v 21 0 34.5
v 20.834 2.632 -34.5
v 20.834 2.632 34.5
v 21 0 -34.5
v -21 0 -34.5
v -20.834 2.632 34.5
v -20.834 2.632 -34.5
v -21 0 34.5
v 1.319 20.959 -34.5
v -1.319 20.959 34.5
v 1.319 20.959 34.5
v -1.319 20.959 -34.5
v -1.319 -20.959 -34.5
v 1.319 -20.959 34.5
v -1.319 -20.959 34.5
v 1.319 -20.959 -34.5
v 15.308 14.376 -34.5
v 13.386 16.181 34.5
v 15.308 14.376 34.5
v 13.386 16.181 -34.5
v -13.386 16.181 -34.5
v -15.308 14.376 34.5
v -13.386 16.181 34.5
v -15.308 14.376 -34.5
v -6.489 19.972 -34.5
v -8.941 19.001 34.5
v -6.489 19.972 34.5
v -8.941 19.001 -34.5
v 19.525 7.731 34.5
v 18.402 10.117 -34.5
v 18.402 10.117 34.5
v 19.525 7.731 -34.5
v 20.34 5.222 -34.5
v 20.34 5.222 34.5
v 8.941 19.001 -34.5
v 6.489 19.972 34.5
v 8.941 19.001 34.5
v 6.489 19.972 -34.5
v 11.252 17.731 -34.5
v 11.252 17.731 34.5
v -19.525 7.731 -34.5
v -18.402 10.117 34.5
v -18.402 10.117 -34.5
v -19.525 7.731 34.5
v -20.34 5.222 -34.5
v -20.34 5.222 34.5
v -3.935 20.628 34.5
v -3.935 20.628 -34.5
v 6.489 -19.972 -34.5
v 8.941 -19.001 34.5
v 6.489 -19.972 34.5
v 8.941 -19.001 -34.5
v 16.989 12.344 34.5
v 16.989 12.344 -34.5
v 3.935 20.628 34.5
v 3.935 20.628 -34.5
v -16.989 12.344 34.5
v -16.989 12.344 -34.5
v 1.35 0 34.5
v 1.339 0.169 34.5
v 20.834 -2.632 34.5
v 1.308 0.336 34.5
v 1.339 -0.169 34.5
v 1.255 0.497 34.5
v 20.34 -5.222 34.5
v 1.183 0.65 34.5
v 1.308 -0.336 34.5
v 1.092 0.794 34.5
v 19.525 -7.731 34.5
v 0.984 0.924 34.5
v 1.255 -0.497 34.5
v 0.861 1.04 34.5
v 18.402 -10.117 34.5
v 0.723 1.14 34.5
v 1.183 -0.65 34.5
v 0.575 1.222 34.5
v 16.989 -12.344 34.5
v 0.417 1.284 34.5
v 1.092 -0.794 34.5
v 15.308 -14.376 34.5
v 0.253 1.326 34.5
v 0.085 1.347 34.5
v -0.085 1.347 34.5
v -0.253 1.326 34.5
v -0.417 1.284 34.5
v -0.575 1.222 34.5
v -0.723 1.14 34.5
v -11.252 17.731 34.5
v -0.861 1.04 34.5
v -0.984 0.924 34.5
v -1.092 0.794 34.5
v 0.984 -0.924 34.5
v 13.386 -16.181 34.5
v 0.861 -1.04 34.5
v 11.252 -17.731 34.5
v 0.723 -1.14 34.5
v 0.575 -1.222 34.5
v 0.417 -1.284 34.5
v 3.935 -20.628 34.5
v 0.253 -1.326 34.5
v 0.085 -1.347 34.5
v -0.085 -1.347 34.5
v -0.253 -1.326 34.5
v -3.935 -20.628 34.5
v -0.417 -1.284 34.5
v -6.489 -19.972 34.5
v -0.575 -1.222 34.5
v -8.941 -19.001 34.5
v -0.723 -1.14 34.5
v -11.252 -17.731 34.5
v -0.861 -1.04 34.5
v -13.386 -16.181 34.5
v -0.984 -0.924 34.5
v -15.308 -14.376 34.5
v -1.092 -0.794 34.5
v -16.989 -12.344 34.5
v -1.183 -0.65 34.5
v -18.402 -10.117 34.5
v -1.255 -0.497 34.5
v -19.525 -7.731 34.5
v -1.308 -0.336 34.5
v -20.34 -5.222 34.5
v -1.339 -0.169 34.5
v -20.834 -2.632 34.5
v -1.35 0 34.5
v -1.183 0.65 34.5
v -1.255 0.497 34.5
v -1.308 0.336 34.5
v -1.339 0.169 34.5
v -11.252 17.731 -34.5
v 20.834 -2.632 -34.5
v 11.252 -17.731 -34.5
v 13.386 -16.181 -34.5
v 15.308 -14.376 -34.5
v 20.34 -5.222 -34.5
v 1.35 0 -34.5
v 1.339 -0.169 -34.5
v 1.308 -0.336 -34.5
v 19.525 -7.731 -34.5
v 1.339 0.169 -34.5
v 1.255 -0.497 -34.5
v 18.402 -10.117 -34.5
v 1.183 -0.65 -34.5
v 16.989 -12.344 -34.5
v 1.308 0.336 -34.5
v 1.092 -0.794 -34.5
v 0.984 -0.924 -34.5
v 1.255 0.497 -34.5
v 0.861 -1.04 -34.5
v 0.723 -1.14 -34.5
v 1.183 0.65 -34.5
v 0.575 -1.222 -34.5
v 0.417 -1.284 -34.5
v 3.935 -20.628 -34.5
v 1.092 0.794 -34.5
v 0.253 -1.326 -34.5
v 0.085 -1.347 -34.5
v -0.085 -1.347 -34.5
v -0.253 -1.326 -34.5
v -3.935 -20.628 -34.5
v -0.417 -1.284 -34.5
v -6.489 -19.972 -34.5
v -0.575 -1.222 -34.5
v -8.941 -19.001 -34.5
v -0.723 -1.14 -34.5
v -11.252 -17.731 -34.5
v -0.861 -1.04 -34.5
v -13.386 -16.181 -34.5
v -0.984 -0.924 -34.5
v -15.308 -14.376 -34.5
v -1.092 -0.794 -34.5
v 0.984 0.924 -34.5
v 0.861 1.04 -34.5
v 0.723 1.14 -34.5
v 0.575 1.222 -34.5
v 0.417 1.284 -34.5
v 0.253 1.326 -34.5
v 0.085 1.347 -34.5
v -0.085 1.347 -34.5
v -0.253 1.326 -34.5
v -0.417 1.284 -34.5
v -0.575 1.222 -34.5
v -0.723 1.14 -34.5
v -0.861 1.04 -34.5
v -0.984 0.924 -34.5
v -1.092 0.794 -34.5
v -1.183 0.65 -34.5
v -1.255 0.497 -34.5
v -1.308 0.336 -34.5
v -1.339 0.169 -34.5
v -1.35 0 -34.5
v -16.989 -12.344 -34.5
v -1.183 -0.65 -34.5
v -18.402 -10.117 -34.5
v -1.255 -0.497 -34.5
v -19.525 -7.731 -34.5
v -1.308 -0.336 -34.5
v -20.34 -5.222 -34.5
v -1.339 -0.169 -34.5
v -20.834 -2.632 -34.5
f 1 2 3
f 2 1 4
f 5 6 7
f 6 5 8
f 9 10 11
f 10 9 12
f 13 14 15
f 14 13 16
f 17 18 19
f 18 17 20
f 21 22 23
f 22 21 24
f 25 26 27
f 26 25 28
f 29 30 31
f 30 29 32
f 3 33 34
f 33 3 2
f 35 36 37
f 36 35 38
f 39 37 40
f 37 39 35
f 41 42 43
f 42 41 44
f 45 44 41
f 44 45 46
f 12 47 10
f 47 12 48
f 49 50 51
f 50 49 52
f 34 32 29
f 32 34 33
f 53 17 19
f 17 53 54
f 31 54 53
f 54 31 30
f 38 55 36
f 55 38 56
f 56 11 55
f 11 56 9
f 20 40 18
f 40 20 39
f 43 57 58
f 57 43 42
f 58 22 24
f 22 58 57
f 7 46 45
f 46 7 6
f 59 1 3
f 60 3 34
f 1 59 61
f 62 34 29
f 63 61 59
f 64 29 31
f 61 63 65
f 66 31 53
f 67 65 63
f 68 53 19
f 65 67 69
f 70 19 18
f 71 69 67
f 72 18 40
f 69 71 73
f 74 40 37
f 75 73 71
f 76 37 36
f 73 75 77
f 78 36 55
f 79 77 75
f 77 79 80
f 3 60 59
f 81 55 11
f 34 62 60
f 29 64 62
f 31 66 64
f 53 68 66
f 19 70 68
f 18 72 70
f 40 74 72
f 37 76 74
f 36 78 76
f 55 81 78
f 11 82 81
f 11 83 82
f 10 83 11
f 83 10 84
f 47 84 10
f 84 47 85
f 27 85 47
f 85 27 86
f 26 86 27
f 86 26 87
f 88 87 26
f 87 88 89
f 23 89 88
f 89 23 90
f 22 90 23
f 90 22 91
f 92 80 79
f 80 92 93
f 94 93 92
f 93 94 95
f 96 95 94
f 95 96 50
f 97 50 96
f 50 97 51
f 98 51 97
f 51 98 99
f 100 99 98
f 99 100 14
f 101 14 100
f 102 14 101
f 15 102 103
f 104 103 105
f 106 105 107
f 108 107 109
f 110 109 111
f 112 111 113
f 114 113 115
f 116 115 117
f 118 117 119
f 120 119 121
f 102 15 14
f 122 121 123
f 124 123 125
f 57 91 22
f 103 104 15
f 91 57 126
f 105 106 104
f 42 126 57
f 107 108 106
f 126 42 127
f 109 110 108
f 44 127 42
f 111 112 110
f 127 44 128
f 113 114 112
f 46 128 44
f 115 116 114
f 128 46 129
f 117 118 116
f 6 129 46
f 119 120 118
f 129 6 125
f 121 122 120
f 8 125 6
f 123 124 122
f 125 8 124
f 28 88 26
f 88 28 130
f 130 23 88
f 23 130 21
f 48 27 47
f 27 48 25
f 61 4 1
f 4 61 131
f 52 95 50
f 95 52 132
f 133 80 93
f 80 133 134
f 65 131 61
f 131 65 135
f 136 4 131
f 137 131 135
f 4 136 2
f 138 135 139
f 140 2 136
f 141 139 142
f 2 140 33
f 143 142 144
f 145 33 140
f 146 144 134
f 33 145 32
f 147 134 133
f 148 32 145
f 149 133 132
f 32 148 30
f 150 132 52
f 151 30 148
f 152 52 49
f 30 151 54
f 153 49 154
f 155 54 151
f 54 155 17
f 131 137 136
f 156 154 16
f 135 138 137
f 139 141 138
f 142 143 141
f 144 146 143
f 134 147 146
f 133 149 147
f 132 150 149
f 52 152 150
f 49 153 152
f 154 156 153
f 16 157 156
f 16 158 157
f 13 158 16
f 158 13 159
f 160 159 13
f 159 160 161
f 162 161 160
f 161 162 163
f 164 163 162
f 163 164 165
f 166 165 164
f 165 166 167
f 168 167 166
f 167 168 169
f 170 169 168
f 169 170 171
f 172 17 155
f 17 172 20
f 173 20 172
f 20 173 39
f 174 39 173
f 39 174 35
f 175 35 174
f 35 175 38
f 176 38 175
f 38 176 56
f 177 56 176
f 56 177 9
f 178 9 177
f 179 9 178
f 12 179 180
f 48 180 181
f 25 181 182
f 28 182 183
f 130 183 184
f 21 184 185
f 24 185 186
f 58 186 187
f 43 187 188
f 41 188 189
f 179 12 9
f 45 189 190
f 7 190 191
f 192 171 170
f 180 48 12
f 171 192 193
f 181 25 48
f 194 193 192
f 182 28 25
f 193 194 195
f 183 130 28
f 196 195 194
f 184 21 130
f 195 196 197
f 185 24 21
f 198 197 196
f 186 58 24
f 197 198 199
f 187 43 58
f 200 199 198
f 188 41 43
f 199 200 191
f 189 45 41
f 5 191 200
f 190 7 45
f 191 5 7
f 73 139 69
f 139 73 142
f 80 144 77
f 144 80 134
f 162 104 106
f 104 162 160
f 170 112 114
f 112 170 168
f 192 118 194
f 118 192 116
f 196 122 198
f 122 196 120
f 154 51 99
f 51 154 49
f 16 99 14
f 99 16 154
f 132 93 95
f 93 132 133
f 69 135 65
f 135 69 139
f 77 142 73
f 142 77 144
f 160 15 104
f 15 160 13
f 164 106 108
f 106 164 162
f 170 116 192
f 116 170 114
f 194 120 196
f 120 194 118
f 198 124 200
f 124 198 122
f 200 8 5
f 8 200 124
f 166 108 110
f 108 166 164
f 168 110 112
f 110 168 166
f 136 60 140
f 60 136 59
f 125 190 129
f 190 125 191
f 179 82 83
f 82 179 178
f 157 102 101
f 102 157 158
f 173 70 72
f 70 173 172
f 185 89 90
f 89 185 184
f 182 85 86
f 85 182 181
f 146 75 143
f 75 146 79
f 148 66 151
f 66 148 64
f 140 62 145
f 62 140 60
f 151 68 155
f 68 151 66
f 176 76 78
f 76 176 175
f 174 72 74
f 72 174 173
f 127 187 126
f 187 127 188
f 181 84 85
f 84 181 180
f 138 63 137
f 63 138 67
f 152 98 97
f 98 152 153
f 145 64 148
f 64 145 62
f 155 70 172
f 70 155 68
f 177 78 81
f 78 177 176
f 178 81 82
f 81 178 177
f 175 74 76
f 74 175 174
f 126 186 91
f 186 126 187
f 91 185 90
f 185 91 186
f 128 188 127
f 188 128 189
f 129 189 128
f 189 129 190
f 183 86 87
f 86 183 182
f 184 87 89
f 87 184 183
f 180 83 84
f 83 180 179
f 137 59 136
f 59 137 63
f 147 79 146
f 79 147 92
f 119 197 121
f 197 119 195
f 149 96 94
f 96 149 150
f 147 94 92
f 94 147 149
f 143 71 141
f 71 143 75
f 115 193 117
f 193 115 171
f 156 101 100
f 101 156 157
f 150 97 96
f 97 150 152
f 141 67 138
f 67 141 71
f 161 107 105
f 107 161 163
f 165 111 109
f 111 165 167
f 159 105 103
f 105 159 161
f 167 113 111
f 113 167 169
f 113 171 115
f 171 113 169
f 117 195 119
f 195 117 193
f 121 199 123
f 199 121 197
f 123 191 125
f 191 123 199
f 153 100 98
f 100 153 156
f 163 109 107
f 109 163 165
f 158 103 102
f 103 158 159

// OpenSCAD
$fn = 50;


difference() {
	union() {
		translate(v = [0, 0, -34.5000000000]) {
			cylinder(h = 69, r = 21.0000000000);
		}
	}
	union() {
		translate(v = [0, 0, -100.0000000000]) {
			cylinder(h = 200, r = 1.3500000000);
		}
	}
}
